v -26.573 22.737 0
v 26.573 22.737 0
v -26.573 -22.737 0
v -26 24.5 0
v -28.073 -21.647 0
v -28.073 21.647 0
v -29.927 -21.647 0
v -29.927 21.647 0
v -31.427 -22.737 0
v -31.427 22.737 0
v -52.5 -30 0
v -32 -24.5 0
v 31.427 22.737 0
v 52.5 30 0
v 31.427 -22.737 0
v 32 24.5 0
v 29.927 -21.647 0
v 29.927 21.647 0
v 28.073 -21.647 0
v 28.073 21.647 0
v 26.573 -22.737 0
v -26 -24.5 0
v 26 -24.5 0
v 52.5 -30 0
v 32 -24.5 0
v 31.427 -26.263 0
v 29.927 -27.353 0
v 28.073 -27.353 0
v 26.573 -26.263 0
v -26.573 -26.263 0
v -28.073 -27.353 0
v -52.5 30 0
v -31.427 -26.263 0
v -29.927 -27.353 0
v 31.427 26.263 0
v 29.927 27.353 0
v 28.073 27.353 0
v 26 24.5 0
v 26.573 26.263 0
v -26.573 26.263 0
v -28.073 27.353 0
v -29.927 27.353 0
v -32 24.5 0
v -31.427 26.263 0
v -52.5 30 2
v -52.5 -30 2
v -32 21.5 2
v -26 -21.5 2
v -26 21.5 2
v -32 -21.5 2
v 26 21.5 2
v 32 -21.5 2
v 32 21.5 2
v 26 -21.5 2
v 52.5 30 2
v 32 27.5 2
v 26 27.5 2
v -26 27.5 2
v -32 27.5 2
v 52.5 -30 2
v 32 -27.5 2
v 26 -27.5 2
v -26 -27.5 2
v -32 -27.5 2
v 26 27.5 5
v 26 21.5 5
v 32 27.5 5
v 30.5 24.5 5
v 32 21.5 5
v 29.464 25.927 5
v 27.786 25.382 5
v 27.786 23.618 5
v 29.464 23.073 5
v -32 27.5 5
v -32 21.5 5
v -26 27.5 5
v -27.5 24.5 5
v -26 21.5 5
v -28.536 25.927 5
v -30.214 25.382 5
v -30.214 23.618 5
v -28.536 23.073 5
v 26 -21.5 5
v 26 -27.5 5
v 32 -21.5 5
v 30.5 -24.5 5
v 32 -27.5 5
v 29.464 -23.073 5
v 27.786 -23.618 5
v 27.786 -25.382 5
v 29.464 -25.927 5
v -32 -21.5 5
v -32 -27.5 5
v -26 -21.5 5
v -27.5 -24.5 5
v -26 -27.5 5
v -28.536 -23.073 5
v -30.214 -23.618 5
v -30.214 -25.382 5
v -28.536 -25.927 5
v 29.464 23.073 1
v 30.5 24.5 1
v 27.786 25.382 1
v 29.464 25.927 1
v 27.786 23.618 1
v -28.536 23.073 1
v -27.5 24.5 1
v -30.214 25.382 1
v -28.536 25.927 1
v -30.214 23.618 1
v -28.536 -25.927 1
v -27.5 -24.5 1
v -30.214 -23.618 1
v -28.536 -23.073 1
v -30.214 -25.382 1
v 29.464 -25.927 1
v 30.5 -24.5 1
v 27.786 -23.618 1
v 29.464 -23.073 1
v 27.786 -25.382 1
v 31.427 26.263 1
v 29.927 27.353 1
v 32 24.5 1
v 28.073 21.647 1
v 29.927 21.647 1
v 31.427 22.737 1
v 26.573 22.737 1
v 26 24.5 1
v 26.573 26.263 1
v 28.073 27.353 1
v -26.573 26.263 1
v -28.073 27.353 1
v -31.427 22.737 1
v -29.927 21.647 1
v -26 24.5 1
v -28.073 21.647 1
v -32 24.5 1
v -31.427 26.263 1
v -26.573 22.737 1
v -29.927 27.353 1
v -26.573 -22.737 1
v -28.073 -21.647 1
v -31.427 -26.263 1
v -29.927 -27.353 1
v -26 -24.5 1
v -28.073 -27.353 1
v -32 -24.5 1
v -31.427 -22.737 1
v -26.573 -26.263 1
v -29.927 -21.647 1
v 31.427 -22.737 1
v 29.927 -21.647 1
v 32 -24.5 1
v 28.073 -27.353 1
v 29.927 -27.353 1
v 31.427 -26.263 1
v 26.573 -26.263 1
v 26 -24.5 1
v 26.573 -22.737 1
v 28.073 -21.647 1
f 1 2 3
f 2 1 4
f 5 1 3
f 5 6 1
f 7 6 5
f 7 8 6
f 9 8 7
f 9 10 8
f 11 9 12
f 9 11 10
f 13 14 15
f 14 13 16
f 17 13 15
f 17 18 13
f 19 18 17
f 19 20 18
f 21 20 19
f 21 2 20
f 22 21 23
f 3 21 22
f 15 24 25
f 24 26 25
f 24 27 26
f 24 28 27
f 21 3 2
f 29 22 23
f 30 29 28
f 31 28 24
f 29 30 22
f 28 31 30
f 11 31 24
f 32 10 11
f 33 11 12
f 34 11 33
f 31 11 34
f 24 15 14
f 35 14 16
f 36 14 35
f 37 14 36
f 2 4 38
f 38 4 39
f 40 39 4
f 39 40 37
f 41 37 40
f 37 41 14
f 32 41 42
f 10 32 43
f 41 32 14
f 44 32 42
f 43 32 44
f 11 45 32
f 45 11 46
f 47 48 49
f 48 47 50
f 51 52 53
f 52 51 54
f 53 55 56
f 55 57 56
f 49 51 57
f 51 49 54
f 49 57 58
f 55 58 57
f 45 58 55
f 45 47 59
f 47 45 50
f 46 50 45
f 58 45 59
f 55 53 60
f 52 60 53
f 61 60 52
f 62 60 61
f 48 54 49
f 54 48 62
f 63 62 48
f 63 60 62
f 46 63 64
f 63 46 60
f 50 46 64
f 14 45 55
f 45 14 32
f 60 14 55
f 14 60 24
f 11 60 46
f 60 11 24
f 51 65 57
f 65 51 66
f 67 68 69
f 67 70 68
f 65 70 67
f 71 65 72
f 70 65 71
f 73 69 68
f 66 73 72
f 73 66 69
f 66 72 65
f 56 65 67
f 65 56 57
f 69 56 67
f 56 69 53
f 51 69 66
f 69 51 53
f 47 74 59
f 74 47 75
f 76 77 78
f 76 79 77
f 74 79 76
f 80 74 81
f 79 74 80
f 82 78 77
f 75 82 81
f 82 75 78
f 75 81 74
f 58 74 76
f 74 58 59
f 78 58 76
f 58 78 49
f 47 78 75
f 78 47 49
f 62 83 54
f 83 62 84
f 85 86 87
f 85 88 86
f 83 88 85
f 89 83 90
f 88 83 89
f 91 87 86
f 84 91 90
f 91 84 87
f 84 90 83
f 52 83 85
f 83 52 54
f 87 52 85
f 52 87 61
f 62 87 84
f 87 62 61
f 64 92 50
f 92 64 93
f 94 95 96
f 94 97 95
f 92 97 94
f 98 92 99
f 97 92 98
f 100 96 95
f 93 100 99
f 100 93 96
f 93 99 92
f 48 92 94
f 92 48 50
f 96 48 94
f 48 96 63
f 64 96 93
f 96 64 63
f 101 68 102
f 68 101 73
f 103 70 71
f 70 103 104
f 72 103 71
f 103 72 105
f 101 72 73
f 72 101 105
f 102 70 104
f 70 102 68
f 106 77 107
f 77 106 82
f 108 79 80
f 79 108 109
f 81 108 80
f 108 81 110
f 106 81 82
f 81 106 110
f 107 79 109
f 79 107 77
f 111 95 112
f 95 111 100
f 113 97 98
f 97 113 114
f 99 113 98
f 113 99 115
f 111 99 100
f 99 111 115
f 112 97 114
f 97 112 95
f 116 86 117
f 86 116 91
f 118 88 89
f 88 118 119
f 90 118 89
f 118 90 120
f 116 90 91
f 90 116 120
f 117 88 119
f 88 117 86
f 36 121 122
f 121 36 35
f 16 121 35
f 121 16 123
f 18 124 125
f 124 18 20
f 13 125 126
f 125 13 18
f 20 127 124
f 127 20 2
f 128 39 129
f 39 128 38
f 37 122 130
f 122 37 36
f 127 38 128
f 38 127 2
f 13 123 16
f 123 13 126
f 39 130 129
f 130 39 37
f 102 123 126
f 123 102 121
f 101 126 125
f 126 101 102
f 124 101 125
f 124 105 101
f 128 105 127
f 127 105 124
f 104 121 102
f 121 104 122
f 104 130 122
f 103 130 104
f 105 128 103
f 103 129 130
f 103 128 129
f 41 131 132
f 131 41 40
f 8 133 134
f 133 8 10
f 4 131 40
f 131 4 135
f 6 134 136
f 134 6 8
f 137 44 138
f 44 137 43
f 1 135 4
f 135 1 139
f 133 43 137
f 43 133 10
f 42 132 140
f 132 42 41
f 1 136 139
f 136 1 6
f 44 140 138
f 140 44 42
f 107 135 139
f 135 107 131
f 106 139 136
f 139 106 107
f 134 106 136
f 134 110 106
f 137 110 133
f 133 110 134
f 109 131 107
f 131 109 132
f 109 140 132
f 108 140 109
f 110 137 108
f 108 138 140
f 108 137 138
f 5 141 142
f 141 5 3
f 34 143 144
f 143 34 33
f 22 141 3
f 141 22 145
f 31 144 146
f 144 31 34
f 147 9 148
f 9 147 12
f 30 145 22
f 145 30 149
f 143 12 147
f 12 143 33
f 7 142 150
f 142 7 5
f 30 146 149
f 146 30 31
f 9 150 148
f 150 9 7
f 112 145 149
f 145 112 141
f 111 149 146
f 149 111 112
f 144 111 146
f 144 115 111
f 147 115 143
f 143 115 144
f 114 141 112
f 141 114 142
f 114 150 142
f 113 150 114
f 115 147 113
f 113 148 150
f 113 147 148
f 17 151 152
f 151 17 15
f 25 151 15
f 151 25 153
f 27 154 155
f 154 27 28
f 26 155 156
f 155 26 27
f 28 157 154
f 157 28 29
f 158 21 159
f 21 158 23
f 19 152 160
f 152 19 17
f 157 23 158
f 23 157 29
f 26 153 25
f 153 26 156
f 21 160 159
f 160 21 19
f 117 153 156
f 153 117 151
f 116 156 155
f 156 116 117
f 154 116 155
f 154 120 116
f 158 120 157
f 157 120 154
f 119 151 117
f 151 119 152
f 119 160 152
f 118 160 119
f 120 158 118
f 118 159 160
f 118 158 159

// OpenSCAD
// Battery rest of the zetabot
// (c) 2026 Bernd Porr

// width of the board
w = 105;

// height of the board
h = 60;

// thickness of the board
thickness = 2;

// x coord of the drillhole
xhole = 29;

// y coord of the drillhole
yhole = 24.5;

// diameter of the drillhole
drilldiam = 3;

// countersunk
countersunk = 1;

// diameter of the post
postdiam = 6;

// height of the post
postheight = 3;

color("grey")
difference() {
    union() {
        linear_extrude(height = thickness)
        square([w, h], center = true);
        translate([xhole,yhole,0])
        linear_extrude(height = postheight + thickness)
        square(postdiam,true);    
        translate([-xhole,yhole,0])
        linear_extrude(height = postheight + thickness)
        square(postdiam,true);    
        translate([xhole,-yhole,0])
        linear_extrude(height = postheight + thickness)
        square(postdiam,true);    
        translate([-xhole,-yhole,0])
        linear_extrude(height = postheight + thickness)
        square(postdiam,true);    
    }

    // drillholes
    translate([xhole,yhole,-1])
    linear_extrude(height = postheight + thickness + 2)
    circle(d=drilldiam);

    translate([-xhole,yhole,-1])
    linear_extrude(height = postheight + thickness + 2)
    circle(d=drilldiam);

    translate([-xhole,-yhole,-1])
    linear_extrude(height = postheight + thickness + 2)
    circle(d=drilldiam);
    
    translate([xhole,-yhole,-1])
    linear_extrude(height = postheight + thickness + 2)
    circle(d=drilldiam);    

    // countersunk
    translate([xhole,yhole,-1])
    linear_extrude(height = 1 + countersunk)
    circle(d=postdiam);

    translate([-xhole,yhole,-1])
    linear_extrude(height = 1 + countersunk)
    circle(d=postdiam);

    translate([-xhole,-yhole,-1])
    linear_extrude(height = 1 + countersunk)
    circle(d=postdiam);

    translate([xhole,-yhole,-1])
    linear_extrude(height = 1 + countersunk)
    circle(d=postdiam);

}
